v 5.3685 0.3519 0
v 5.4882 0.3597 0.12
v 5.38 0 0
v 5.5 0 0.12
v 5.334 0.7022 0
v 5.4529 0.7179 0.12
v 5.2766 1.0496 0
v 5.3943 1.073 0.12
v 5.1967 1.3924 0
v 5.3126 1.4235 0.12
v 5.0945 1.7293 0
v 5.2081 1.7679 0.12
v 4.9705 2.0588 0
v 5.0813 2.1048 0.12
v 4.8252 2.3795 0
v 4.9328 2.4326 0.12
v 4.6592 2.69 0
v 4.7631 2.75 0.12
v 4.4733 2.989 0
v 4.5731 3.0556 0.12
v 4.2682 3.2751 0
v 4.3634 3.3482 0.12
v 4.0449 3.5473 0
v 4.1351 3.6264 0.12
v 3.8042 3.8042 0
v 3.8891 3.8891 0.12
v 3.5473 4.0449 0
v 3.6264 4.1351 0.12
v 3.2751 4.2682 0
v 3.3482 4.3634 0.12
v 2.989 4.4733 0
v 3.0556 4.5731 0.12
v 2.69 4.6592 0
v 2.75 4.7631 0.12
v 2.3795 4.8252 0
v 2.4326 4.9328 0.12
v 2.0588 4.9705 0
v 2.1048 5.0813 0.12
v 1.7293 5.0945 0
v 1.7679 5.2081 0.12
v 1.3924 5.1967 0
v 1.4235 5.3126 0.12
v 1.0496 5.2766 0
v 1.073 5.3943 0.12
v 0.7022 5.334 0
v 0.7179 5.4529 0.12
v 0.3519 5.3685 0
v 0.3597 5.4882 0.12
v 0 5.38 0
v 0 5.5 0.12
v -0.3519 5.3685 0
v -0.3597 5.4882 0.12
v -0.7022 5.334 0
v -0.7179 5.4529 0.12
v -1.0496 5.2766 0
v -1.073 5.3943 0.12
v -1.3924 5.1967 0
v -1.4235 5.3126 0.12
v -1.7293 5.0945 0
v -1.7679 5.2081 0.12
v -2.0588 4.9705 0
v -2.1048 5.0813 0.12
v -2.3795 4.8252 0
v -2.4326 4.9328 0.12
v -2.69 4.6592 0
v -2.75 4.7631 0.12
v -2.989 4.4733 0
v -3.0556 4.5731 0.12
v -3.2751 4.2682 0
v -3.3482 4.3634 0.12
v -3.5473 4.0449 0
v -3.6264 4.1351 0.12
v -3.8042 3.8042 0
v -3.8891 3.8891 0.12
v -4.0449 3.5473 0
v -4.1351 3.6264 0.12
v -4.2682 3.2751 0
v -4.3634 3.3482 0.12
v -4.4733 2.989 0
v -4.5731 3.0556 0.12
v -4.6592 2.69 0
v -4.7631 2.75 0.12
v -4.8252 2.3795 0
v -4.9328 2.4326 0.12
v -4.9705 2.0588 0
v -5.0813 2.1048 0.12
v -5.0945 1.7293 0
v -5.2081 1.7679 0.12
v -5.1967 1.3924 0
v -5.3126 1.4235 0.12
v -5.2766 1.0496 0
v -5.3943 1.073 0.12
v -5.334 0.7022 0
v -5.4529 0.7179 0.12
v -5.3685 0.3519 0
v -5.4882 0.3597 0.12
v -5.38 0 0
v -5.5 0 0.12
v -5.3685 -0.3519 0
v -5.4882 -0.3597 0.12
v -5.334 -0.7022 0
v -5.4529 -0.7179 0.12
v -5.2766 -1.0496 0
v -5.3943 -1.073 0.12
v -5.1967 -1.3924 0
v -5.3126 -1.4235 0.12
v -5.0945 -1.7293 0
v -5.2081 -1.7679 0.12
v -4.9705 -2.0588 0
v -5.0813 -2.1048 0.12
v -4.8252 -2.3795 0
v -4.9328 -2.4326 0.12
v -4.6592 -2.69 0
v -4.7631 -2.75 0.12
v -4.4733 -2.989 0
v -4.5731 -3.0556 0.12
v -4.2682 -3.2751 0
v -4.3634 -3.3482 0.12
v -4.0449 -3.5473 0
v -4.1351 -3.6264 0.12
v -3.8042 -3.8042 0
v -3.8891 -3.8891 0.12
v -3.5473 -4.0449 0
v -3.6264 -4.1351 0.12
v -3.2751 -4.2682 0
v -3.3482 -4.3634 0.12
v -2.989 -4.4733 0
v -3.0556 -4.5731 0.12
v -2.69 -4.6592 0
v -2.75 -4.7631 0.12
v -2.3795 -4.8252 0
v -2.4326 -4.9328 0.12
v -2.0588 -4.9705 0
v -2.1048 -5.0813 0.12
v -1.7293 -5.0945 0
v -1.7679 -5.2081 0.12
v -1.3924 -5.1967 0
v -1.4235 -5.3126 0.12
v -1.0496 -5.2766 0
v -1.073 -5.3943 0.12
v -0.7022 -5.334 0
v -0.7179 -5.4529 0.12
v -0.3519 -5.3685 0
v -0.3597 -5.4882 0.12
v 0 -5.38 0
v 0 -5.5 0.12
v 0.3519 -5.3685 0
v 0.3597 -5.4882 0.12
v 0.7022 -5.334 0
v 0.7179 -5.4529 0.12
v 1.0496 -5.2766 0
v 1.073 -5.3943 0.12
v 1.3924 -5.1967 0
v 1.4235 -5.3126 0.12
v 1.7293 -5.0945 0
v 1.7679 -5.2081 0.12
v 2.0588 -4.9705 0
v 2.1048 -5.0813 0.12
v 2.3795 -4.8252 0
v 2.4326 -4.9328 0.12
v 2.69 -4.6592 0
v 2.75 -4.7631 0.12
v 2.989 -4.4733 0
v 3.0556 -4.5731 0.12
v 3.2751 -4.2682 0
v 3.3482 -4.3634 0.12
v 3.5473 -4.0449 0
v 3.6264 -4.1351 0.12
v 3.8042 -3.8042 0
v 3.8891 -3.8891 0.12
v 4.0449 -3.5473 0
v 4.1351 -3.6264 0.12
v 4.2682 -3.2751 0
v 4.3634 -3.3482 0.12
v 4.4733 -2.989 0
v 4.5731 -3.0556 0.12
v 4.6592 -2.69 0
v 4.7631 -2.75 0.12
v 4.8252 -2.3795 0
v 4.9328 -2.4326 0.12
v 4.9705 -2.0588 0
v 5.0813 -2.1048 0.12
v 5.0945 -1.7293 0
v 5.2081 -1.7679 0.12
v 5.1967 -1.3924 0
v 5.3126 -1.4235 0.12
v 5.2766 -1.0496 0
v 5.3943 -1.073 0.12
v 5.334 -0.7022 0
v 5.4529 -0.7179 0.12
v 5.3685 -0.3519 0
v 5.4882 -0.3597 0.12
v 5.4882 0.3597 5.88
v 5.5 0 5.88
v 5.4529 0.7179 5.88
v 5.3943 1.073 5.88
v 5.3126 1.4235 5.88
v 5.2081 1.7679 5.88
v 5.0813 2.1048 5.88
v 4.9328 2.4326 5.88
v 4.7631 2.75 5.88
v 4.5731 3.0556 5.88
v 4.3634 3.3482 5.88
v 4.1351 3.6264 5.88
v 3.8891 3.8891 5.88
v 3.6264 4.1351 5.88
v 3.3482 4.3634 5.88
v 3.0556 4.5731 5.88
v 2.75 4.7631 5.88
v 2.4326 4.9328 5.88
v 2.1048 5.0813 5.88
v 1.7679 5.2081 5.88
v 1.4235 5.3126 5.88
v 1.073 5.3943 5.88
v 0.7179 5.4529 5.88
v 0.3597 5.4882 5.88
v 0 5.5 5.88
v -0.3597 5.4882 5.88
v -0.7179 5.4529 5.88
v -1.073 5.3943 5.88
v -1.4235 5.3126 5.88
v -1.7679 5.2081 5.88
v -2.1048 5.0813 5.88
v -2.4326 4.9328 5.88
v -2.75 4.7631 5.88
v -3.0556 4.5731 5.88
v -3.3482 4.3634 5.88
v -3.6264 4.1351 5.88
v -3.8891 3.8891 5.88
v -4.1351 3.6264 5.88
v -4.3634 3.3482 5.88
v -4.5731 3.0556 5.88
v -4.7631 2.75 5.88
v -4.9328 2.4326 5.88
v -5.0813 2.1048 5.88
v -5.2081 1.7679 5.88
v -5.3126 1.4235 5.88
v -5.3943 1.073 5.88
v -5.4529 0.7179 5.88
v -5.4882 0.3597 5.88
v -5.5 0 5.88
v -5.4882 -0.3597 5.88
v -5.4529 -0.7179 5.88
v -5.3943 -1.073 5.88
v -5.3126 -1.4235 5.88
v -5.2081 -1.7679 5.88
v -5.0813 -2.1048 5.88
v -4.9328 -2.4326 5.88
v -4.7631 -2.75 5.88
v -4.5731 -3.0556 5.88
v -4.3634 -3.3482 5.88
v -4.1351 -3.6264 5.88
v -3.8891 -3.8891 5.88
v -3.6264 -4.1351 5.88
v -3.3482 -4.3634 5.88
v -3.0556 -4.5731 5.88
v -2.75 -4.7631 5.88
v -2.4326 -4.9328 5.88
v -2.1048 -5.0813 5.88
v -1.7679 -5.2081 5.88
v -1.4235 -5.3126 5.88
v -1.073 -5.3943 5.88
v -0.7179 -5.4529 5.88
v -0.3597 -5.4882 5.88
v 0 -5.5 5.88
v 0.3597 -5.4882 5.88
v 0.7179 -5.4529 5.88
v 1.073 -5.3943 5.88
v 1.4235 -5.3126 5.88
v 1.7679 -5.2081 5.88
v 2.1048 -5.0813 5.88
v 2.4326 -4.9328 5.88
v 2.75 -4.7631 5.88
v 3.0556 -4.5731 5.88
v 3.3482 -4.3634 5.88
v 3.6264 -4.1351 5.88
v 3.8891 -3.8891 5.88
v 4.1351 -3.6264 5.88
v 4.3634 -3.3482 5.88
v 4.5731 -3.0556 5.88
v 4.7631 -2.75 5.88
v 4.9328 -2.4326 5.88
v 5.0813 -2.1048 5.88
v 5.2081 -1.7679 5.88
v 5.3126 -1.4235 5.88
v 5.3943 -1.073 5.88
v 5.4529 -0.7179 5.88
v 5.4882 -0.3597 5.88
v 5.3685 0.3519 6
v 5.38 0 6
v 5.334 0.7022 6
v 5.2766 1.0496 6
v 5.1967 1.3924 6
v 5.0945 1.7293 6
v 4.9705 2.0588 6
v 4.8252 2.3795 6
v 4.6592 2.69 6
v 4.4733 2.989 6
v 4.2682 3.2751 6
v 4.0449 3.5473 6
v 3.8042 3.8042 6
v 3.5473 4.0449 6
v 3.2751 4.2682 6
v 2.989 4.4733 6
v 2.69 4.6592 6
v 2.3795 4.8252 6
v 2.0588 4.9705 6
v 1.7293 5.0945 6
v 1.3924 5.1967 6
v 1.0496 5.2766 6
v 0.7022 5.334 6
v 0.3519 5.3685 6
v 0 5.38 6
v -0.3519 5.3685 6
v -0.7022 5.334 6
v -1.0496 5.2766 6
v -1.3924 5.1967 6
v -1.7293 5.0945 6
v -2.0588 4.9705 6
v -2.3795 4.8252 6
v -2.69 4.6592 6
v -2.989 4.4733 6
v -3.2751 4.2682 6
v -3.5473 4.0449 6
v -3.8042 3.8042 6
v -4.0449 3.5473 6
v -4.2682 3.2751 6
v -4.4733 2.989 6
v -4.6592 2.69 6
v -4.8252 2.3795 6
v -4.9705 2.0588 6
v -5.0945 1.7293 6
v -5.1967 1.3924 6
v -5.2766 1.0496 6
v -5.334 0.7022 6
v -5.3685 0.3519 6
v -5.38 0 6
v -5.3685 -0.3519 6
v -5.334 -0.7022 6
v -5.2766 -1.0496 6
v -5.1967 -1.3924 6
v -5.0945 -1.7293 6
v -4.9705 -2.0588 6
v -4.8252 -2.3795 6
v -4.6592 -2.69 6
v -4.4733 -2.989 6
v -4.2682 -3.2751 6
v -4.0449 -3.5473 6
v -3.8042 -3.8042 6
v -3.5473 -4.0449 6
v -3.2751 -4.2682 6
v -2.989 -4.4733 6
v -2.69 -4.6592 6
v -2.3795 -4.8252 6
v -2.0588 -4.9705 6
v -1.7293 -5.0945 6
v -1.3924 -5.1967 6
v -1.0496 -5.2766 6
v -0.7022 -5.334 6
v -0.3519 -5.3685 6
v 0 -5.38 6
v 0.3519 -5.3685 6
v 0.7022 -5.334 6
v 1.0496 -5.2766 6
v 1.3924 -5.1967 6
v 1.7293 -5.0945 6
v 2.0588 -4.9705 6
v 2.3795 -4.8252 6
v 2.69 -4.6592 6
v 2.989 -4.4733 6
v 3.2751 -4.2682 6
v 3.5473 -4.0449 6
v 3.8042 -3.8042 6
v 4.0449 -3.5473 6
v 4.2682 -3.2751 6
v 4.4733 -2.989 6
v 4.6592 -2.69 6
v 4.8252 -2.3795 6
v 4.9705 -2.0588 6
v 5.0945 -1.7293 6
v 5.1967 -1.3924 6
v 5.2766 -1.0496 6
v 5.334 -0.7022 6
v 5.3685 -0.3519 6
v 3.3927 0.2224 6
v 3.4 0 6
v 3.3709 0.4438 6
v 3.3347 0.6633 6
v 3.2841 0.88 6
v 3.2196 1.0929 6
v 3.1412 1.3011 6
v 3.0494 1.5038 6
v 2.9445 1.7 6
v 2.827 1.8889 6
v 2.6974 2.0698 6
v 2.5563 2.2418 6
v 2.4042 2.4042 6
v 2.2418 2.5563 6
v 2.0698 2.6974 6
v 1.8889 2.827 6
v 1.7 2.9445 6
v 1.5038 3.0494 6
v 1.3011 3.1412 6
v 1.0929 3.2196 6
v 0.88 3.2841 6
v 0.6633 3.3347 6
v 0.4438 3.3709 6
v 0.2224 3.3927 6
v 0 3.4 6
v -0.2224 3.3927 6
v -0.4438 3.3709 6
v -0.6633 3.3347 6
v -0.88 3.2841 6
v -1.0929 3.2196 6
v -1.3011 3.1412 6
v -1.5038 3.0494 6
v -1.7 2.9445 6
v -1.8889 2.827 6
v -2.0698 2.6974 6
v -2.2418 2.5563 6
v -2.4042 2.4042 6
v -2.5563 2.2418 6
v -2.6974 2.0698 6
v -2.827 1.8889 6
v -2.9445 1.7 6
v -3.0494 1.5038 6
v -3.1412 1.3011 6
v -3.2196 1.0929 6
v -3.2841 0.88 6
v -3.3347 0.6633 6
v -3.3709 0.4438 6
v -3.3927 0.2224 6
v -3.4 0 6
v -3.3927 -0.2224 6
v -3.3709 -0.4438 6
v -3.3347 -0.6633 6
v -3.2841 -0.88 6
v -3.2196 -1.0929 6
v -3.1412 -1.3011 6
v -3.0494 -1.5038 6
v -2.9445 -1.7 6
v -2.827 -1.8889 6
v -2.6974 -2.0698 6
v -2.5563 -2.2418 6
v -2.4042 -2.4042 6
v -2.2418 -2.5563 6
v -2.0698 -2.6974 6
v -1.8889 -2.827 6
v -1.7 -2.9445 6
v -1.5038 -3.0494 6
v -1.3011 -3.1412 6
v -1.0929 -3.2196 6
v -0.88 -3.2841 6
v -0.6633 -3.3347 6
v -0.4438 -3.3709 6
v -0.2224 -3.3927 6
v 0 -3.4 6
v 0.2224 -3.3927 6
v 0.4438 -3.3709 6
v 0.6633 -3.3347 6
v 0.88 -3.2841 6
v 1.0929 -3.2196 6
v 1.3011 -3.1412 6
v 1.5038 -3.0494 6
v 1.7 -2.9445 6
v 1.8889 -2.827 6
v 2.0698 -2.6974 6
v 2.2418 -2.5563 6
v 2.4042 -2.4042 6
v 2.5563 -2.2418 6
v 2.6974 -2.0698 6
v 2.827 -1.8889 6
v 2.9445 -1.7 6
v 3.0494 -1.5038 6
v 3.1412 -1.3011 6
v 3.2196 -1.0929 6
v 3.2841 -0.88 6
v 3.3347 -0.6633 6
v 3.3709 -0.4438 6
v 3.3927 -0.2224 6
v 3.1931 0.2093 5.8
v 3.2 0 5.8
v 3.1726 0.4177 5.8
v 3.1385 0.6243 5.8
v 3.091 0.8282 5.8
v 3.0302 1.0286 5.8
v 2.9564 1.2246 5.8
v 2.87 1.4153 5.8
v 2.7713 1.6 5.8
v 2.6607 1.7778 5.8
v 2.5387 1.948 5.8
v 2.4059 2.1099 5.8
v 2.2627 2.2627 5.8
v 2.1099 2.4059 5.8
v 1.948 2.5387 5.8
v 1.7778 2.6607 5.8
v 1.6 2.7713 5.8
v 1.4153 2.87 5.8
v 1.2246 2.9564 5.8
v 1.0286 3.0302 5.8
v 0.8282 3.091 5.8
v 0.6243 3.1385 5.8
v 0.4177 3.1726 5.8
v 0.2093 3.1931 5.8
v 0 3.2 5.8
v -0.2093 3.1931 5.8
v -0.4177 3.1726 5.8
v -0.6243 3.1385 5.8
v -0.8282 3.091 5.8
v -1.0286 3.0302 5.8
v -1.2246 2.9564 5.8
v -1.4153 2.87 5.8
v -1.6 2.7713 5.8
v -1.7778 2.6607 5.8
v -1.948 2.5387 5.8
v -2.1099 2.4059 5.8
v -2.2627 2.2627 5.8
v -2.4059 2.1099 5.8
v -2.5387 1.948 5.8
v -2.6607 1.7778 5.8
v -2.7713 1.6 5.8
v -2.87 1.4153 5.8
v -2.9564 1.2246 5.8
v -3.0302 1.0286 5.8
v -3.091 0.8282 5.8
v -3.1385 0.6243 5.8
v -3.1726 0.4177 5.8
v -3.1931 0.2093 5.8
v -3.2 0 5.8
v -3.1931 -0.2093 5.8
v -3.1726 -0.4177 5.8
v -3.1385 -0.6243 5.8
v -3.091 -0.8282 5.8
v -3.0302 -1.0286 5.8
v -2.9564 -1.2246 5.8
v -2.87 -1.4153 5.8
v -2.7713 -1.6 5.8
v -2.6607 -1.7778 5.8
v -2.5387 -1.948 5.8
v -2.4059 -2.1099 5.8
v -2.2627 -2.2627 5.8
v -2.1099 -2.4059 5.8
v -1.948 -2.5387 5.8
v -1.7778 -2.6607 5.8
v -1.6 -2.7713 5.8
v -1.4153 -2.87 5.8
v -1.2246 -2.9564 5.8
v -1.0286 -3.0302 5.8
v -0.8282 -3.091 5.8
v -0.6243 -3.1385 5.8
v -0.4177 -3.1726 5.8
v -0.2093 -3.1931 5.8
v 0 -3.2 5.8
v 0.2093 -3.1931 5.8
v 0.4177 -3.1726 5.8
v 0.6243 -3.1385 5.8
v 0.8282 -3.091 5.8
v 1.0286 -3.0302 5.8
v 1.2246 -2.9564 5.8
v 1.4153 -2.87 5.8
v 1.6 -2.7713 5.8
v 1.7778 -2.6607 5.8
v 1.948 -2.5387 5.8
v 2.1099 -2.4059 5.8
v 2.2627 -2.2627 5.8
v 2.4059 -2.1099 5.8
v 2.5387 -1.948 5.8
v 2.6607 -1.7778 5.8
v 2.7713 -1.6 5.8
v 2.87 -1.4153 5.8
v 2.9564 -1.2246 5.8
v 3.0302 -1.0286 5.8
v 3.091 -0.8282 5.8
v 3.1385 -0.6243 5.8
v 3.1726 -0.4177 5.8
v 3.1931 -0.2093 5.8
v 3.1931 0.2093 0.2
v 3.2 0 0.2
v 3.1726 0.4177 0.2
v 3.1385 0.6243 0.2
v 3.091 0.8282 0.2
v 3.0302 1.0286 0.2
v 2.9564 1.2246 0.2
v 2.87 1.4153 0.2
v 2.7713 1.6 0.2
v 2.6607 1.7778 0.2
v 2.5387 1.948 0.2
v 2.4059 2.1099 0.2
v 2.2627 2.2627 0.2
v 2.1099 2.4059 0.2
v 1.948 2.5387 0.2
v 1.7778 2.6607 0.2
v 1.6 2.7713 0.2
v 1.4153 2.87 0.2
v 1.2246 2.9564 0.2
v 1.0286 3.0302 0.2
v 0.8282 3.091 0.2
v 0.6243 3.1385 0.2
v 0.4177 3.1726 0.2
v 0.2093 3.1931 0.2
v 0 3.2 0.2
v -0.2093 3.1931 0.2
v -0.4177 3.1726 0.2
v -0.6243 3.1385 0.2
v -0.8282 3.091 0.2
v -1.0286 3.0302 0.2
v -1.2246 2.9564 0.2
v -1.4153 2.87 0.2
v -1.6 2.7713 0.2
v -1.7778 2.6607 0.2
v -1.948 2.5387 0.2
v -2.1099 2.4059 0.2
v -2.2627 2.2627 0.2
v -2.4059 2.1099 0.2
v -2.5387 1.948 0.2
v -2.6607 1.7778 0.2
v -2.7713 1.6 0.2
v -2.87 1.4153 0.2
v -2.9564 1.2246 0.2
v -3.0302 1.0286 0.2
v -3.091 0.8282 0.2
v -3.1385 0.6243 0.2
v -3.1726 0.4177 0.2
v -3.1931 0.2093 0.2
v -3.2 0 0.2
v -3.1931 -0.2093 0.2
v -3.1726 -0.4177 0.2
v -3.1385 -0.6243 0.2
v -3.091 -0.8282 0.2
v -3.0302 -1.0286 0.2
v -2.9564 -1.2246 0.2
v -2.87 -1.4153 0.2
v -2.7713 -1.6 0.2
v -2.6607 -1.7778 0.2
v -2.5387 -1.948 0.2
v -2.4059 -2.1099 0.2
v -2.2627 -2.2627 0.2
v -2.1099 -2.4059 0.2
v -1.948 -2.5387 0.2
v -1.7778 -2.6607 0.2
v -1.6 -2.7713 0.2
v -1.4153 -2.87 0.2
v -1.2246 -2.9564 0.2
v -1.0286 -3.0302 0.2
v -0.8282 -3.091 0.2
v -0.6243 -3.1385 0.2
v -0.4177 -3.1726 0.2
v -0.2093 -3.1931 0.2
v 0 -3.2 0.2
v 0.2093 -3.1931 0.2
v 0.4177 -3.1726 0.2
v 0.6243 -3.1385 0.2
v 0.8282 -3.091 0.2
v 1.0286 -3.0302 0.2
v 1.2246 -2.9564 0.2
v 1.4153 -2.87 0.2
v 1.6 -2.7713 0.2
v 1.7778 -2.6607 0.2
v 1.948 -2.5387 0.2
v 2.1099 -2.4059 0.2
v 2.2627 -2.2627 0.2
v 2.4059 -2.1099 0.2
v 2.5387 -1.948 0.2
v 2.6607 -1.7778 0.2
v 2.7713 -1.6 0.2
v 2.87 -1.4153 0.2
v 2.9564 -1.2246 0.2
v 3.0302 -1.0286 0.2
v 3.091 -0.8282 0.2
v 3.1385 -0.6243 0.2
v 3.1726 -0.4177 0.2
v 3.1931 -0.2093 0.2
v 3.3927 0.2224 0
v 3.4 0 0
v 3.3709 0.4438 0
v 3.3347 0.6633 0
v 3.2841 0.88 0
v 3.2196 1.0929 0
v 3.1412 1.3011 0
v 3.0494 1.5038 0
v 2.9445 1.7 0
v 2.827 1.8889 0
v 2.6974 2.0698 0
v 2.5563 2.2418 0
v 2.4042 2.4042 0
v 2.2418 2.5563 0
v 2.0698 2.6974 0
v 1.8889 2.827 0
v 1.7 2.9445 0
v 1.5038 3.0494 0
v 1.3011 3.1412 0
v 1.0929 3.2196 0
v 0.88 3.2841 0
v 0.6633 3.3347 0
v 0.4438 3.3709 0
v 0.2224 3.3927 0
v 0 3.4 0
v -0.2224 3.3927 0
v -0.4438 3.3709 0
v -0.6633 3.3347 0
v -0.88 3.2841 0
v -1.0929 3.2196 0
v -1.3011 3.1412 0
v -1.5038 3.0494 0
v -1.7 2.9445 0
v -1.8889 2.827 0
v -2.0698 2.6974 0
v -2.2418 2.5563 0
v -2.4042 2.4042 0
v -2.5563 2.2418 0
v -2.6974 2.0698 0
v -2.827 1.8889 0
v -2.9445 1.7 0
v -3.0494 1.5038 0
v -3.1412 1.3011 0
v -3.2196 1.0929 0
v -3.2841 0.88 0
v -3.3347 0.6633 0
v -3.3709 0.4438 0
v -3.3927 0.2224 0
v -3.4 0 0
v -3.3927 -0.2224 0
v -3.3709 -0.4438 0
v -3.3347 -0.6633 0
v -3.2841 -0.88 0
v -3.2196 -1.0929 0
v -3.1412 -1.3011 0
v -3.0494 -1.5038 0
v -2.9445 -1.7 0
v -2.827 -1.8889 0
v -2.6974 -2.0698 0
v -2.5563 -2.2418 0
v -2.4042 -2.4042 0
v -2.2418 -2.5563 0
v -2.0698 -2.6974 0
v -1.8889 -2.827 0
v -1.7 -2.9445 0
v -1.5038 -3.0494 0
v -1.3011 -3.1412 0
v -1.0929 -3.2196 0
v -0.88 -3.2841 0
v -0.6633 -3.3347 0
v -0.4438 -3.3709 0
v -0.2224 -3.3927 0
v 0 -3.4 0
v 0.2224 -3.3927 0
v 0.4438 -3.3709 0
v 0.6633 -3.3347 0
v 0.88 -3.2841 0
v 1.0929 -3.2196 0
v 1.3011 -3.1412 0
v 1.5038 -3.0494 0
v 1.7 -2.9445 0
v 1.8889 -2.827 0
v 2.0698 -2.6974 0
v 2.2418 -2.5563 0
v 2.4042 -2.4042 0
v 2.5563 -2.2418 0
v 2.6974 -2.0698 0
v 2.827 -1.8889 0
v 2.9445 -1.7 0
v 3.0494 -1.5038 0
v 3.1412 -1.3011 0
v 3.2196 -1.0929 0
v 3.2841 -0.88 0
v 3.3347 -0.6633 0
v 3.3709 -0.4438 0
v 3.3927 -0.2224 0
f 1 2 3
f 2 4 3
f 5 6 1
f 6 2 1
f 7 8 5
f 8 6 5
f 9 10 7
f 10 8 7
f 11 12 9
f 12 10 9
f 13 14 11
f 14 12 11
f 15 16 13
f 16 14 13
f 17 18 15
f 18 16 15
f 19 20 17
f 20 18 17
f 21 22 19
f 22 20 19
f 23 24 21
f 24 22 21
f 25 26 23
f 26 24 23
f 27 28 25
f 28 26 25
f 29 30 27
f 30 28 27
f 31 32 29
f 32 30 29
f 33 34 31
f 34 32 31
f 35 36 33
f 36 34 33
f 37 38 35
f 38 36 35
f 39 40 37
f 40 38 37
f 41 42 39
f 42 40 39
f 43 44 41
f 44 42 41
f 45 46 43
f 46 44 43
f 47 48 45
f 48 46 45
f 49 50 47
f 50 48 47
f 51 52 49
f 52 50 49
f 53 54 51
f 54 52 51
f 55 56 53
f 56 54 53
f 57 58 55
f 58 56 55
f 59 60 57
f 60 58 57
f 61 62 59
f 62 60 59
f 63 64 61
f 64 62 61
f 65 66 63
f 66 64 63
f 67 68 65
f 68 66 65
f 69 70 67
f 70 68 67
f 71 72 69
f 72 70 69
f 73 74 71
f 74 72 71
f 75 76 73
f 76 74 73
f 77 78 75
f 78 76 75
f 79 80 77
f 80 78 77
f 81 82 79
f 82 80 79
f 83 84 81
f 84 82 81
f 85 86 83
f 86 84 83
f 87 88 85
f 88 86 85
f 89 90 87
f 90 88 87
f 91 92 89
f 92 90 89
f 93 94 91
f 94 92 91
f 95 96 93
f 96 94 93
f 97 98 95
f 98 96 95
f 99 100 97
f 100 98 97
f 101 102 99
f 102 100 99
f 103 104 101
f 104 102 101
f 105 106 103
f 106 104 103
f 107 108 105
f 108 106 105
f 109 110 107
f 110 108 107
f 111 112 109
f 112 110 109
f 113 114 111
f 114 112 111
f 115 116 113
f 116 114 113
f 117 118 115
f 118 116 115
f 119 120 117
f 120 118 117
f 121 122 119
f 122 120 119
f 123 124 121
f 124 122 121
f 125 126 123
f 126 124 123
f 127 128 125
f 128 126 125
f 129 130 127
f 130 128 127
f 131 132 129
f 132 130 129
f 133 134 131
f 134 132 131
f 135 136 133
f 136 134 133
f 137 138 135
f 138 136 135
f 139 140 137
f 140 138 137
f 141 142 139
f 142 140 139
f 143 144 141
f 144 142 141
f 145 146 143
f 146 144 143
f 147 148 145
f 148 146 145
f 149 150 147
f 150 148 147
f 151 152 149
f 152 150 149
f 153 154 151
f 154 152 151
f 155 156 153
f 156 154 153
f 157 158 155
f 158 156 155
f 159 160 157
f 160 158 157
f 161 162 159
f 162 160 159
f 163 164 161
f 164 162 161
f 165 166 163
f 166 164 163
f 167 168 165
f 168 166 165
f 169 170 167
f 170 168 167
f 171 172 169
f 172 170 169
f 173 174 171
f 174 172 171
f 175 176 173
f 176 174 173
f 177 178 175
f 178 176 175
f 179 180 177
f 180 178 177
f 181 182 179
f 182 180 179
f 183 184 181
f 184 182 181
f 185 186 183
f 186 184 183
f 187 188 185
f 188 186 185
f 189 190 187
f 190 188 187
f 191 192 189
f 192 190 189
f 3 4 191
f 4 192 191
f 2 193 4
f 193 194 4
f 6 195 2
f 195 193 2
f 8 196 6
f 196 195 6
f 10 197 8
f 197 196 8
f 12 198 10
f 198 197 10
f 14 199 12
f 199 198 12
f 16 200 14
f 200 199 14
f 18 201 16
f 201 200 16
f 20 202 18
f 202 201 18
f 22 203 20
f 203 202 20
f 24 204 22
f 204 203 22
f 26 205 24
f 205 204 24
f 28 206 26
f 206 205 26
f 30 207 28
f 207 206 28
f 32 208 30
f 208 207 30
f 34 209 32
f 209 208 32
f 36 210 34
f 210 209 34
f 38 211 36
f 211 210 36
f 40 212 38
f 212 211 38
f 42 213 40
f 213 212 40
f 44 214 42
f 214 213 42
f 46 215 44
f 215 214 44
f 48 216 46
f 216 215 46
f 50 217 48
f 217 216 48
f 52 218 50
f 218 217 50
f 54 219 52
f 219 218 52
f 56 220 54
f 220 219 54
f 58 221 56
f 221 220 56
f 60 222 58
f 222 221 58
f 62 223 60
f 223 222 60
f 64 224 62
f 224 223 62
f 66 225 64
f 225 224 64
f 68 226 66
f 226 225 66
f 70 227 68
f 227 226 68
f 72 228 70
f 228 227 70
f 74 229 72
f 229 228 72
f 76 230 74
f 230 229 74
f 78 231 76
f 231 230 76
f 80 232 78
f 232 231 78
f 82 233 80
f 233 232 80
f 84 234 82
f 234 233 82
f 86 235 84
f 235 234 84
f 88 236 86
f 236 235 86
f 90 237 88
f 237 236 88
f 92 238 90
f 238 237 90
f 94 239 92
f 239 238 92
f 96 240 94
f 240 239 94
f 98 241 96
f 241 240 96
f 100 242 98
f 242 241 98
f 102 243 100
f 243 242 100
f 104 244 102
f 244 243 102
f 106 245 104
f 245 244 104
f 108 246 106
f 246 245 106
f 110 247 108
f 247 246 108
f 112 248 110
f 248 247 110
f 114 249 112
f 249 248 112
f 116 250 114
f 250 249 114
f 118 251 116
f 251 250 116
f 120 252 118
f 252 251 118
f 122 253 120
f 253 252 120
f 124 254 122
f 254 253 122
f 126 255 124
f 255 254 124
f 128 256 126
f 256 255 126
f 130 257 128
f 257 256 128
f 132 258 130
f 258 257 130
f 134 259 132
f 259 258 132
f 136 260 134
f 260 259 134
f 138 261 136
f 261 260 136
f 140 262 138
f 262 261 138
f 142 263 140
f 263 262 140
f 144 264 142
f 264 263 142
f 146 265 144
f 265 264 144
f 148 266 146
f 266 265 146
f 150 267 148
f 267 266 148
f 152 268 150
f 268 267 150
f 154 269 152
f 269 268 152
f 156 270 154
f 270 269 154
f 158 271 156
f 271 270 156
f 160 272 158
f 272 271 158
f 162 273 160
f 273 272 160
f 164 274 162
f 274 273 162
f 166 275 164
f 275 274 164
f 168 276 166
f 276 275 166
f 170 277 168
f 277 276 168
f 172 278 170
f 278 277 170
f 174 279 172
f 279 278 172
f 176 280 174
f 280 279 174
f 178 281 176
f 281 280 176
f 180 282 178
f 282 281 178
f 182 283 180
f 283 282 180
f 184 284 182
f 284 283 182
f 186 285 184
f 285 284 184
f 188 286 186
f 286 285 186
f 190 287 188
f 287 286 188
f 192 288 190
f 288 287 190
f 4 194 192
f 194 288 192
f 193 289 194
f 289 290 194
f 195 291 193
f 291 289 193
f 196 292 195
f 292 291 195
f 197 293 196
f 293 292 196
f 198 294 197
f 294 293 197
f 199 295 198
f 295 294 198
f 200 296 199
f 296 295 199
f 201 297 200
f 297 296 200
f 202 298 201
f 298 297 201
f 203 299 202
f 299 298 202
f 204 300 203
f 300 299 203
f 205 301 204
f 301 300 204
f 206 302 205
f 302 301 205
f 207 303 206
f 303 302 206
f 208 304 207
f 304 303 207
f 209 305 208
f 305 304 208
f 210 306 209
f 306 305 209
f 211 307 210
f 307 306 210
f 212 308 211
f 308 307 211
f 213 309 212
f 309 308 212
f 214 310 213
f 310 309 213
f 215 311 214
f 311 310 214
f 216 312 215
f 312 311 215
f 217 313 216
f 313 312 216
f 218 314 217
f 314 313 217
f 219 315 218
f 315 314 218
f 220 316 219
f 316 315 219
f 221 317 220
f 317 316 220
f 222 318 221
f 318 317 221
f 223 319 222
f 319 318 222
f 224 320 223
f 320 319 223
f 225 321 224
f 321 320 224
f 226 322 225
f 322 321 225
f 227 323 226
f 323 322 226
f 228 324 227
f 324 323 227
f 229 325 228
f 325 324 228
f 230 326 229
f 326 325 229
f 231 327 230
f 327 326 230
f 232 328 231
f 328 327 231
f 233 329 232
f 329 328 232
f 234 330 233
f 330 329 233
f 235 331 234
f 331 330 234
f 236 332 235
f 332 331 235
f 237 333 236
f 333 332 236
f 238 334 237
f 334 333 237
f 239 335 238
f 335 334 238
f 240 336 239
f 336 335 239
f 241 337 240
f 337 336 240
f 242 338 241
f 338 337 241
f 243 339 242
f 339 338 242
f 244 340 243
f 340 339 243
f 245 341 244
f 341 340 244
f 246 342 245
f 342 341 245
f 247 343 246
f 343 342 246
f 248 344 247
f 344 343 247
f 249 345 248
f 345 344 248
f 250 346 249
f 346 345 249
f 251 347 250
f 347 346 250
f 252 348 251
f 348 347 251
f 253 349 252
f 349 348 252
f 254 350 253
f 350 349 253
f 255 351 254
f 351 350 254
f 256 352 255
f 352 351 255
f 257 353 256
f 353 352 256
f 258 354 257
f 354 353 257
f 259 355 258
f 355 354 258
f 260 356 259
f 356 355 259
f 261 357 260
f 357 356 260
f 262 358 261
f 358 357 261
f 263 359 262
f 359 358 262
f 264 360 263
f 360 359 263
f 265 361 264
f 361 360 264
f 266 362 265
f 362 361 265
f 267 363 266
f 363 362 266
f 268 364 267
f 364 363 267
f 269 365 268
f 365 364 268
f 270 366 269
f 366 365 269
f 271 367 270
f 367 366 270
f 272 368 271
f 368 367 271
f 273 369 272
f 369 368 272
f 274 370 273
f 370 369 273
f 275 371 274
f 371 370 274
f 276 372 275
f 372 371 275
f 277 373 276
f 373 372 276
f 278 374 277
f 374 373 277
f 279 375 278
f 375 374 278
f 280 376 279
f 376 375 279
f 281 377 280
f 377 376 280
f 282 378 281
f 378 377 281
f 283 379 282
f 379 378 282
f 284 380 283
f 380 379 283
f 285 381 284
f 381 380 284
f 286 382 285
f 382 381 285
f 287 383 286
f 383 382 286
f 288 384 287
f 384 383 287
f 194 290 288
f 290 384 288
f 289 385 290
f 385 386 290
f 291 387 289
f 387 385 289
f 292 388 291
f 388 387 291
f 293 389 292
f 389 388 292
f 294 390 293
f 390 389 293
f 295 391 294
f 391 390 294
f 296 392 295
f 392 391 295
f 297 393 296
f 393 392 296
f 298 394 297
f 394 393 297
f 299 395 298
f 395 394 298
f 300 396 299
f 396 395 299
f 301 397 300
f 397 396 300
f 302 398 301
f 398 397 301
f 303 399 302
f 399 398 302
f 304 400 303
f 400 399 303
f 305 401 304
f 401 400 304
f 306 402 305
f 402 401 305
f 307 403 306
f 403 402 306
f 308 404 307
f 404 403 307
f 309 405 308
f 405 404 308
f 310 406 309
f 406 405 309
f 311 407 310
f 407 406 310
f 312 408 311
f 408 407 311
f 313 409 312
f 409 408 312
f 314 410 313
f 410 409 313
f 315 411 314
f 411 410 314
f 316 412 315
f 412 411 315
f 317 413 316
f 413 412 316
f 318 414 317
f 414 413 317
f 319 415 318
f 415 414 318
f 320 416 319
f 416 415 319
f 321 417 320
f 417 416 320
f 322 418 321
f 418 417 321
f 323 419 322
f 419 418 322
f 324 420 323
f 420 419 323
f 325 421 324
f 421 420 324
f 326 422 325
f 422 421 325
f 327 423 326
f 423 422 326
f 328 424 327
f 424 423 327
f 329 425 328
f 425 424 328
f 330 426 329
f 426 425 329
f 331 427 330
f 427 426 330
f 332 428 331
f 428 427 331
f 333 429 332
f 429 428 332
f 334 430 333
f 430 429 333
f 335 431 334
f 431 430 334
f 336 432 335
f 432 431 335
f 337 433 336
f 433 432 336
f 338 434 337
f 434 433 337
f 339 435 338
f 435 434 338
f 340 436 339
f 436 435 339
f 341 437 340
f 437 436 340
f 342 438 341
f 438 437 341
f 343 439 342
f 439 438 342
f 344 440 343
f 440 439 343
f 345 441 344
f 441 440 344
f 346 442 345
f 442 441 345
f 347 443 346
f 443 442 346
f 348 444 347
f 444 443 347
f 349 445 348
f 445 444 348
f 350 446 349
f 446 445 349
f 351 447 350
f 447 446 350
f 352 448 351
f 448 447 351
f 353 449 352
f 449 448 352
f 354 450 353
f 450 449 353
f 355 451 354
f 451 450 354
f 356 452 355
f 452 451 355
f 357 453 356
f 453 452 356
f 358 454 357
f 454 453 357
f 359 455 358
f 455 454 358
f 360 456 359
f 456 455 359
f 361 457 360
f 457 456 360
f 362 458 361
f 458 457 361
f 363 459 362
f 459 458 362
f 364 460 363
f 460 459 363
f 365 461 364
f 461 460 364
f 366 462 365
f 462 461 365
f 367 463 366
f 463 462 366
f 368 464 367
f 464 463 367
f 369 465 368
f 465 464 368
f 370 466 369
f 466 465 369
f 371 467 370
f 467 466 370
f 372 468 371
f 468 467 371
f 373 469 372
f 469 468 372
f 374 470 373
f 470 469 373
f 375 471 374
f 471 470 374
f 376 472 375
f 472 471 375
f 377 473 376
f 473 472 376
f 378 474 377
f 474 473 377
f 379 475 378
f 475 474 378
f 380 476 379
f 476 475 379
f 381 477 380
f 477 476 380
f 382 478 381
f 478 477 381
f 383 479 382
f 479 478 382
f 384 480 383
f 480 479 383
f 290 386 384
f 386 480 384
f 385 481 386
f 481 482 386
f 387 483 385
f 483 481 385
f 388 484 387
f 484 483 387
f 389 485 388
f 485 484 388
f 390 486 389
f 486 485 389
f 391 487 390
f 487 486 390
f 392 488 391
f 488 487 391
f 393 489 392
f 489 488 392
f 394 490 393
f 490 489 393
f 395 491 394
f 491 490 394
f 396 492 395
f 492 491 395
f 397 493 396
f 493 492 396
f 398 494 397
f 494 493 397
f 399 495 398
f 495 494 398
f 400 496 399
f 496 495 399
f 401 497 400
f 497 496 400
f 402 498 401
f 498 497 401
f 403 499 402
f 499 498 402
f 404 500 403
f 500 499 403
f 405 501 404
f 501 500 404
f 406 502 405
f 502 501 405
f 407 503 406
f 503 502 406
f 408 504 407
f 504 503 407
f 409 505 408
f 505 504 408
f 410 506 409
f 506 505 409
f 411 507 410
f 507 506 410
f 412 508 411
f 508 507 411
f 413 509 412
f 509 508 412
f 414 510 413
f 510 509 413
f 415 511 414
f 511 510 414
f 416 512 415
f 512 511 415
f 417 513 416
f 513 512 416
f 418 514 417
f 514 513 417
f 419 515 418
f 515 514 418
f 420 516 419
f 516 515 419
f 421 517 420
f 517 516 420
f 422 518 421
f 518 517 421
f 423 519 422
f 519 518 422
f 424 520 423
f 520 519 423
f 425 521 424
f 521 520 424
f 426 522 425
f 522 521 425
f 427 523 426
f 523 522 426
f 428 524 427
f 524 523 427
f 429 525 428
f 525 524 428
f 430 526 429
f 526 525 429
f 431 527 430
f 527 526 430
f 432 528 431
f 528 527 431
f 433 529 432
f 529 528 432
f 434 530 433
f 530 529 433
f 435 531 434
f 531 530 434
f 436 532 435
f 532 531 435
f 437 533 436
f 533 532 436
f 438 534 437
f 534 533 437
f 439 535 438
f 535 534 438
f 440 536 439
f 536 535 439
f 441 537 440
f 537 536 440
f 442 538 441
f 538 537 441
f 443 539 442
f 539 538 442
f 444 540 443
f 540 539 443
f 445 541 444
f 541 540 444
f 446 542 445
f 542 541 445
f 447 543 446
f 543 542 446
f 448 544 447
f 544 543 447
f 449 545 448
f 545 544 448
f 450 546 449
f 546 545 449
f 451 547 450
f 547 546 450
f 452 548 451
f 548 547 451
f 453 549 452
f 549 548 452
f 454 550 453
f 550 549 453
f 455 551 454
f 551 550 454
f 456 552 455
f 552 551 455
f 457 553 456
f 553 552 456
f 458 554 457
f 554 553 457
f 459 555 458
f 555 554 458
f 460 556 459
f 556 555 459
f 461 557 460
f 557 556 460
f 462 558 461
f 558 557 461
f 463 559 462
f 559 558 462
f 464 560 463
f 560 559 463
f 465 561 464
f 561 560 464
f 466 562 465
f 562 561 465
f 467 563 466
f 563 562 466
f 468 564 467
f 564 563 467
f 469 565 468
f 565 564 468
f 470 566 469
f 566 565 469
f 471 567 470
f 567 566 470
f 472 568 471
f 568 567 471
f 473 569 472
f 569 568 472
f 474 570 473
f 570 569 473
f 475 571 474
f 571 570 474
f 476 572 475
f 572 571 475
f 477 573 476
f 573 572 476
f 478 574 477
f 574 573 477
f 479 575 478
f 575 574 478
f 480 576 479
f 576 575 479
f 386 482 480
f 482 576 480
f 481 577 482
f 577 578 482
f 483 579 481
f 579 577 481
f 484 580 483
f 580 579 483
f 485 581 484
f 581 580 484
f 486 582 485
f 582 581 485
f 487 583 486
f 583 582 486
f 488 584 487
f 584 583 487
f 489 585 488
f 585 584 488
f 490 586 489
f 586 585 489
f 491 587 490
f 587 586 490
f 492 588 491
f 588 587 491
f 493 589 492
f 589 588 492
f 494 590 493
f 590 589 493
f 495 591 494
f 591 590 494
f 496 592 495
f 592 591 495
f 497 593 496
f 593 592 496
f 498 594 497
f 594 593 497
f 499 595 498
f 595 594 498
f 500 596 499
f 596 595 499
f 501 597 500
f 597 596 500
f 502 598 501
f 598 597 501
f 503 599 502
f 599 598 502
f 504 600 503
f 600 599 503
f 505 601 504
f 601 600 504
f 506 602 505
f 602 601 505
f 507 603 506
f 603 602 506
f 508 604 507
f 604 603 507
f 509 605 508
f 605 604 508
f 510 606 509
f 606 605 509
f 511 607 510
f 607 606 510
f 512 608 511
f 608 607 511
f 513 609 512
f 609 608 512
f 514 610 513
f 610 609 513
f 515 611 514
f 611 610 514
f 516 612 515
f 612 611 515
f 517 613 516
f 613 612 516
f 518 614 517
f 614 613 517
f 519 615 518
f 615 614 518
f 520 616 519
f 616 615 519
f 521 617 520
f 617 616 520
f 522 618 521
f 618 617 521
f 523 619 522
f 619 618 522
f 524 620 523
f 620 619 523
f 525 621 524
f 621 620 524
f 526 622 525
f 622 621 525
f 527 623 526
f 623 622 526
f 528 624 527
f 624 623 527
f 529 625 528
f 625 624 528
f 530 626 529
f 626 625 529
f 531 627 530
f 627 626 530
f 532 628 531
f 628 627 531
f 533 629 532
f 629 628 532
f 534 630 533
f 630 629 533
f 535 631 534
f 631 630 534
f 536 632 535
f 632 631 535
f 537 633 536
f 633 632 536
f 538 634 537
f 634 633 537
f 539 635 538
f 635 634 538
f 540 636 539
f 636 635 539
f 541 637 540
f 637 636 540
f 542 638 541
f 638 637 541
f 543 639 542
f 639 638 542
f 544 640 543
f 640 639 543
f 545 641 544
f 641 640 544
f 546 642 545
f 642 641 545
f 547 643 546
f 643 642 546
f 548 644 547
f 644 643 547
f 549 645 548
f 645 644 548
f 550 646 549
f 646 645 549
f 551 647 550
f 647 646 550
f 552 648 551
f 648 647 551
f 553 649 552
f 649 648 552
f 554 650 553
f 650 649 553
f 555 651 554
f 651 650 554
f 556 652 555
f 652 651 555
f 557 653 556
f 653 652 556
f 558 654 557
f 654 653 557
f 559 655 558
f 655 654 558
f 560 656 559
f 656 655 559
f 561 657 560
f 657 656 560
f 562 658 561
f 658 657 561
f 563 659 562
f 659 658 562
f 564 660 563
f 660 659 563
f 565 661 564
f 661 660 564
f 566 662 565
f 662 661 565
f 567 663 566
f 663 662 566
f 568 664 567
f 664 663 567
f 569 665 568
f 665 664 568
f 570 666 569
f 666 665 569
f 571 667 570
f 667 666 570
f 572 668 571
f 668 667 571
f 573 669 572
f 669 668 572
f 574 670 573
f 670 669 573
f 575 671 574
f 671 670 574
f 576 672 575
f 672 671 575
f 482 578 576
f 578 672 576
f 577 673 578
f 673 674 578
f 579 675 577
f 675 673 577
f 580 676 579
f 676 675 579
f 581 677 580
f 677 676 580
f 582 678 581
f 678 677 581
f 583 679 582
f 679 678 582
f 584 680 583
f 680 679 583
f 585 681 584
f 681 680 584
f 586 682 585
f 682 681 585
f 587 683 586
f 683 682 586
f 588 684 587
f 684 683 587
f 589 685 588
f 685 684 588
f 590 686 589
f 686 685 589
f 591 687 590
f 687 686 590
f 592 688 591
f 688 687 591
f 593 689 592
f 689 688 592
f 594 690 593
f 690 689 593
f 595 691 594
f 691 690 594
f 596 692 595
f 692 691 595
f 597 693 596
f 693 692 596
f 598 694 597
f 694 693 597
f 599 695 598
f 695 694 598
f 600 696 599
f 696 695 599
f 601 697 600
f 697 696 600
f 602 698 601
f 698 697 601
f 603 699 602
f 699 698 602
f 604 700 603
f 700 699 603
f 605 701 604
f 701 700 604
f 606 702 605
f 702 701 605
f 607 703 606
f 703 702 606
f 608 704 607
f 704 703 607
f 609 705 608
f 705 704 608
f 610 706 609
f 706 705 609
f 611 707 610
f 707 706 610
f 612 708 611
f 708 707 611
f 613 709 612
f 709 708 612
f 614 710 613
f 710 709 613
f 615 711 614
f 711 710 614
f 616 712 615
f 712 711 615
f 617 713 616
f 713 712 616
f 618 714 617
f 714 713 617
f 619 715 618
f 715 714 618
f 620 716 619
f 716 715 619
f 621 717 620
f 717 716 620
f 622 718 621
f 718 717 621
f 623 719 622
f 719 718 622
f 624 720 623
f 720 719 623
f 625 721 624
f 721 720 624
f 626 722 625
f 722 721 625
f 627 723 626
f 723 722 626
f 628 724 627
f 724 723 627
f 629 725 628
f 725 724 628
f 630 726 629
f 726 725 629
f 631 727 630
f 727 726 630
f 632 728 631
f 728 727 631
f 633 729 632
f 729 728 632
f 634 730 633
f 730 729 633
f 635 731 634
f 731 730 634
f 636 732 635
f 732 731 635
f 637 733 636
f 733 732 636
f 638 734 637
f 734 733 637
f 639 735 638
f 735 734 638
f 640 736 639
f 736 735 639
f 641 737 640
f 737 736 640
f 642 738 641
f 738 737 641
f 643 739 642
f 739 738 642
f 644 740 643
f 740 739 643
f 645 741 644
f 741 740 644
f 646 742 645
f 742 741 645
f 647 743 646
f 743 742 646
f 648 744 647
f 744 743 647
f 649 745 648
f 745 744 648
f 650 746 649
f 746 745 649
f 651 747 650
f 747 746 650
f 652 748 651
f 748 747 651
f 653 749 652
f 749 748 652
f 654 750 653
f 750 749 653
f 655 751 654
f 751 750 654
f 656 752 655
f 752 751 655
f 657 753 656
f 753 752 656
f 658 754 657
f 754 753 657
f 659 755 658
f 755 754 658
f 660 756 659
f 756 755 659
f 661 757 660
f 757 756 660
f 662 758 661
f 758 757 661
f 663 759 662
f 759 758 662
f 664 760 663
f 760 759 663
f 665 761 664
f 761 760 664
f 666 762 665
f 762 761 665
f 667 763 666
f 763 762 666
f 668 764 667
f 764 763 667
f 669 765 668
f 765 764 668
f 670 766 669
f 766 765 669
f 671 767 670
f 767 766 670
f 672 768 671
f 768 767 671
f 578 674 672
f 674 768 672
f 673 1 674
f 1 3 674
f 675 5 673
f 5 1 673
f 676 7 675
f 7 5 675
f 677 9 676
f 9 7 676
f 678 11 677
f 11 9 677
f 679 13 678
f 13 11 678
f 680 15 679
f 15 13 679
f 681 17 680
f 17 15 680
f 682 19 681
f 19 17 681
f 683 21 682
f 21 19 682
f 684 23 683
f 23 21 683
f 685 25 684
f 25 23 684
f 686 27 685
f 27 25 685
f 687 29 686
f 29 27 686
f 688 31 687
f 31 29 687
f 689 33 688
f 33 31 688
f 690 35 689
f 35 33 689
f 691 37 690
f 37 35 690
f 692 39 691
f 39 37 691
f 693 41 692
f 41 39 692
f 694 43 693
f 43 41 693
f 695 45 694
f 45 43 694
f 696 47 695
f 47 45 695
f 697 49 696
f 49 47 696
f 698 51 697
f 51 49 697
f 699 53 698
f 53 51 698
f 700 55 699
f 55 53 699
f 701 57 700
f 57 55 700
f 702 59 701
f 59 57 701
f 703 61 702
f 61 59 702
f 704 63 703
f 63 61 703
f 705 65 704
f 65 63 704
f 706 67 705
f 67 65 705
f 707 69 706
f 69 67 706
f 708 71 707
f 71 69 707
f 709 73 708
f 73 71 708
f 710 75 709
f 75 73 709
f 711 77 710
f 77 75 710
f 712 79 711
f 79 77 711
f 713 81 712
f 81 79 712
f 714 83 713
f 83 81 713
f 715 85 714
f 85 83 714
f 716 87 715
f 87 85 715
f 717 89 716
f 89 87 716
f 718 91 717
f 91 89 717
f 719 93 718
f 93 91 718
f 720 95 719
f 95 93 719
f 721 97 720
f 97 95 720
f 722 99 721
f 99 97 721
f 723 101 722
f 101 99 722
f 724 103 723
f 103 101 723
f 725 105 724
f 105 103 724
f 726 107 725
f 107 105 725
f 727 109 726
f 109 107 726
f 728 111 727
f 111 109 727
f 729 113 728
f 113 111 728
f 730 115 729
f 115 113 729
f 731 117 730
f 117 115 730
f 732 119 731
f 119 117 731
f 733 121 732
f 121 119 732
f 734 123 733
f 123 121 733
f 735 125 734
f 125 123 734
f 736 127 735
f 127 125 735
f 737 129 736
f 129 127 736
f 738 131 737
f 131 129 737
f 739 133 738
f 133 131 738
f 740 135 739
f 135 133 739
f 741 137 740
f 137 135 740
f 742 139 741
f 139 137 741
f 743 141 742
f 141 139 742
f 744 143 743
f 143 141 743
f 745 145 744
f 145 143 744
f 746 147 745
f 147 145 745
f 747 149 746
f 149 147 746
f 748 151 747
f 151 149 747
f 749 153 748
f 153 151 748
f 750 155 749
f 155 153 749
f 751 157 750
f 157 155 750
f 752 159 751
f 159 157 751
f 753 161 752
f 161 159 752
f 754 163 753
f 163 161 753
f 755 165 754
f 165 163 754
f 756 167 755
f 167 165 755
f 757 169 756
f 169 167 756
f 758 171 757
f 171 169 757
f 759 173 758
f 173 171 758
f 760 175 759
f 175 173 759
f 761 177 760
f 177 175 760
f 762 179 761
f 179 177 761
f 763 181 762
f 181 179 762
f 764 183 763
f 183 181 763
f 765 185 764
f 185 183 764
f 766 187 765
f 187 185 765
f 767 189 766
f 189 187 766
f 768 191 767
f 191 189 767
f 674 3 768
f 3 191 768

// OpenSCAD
// OOMP generic catalogue model; units: mm.
// Stud length is additional to body depth. Tapping depths are model assumptions.
variant = "full"; // [full, display]
family = "spacer";
connection_type = "plain";
depth_mm = 6;
stud_length_mm = 0;
tapped_depth_mm = 0;
bore_mm = 6.4;
outer_diameter_mm = 11;
across_flats_mm = 6;
thread_nominal_diameter_mm = 3;
thread_pitch_mm = 0.5;
edge_chamfer_mm = 0.12;
mouth_chamfer_mm = 0.2;
angular_segments = 96;
samples_per_pitch = 16;

// Boundary travels up the outside, then down any tapped/plain bore.
// Equal-height rings at shoulders form the annular shoulder faces.
n = angular_segments;
threaded = family == "standoff";
has_stud = connection_type == "stud_to_tapped" || connection_type == "stud_to_stud";
two_studs = connection_type == "stud_to_stud";
through = !threaded || connection_type == "tapped_to_tapped";
pitch = thread_pitch_mm;
diameter = threaded ? thread_nominal_diameter_mm : bore_mm;
minor = diameter - 5*sqrt(3)*pitch/8;
transition = mouth_chamfer_mm + (threaded ? 5*sqrt(3)*pitch/16 : 0);
tip_chamfer = mouth_chamfer_mm + 17*sqrt(3)*pitch/48;
function sorted(v) = len(v)<=1 ? v : let(p=v[0])
    concat(sorted([for(x=v) if(x<p-1e-8) x]), [p], sorted([for(x=v) if(x>p+1e-8) x]));
function reverse(v) = [for(i=[len(v)-1:-1:0]) v[i]];
function theta(i) = i*360/n;
function fract(x) = x-floor(x);
function phase_distance(i,z) = abs(fract(z/pitch-theta(i)/360+0.5)-0.5);
function thread_r(i,z) = minor/2 + min(5*sqrt(3)*pitch/16,
    max(0,(phase_distance(i,z)-0.125)*pitch*sqrt(3)));
function stud_r(i,z,tip) = min(diameter/2 - (variant=="full" ?
    min(17*sqrt(3)*pitch/48,max(0,(phase_distance(i,z)-0.0625)*pitch*sqrt(3))) : 0),
    diameter/2-tip_chamfer+abs(z-tip));
function body_r(i,z) = (threaded ? across_flats_mm/2/cos(theta(i)%60-30) : outer_diameter_mm/2)
    - max(0,edge_chamfer_mm-min(z,depth_mm-z));
function bore_r(i,z) = max(threaded ? (variant=="full" ? thread_r(i,z) : minor/2) : diameter/2,
    diameter/2+mouth_chamfer_mm-(through ? min(z,depth_mm-z) : depth_mm-z));
function stud_z(a,b,tip) = let(count=variant=="full" ? ceil(stud_length_mm/pitch*samples_per_pitch) : 1)
    sorted(concat([for(i=[0:count]) a+(b-a)*i/count], [tip==a ? tip+tip_chamfer : tip-tip_chamfer]));
body_z = sorted([0,edge_chamfer_mm,depth_mm-edge_chamfer_mm,depth_mm]);
low = through ? 0 : depth_mm-tapped_depth_mm;
count = threaded && variant=="full" ? ceil((depth_mm-low)/pitch*samples_per_pitch) : 1;
bore_z = two_studs ? [] : reverse(sorted(concat(
    [for(i=[0:count]) low+(depth_mm-low)*i/count],
    [depth_mm-mouth_chamfer_mm,depth_mm-transition],
    through ? [mouth_chamfer_mm,transition] : [])));
// Ring descriptors: [height, kind, tip]. Kind: 0 body, 1 stud, 2 bore.
rings = concat(
    has_stud ? [for(z=stud_z(-stud_length_mm,0,-stud_length_mm)) [z,1,-stud_length_mm]] : [],
    [for(z=body_z) [z,0,0]],
    two_studs ? [for(z=stud_z(depth_mm,depth_mm+stud_length_mm,depth_mm+stud_length_mm)) [z,1,depth_mm+stud_length_mm]] : [],
    [for(z=bore_z) [z,2,0]]);
function radius(i,ring) = ring[1]==0 ? body_r(i,ring[0]) :
    ring[1]==1 ? stud_r(i,ring[0],ring[2]) : bore_r(i,ring[0]);
points = concat([for(ring=rings) for(i=[0:n-1])
    [radius(i,ring)*cos(theta(i)),radius(i,ring)*sin(theta(i)),ring[0]]],
    through ? [] : [[0,0,rings[0][0]],[0,0,rings[len(rings)-1][0]]]);
center = len(rings)*n;
last = (len(rings)-1)*n;
// OpenSCAD winding is opposite to STL winding.
faces = concat(
    [for(j=[0:len(rings)-(through ? 1 : 2)]) for(i=[0:n-1]) each
        let(a=j*n+i,b=j*n+(i+1)%n,c=((j+1)%len(rings))*n+(i+1)%n,d=((j+1)%len(rings))*n+i)
        [[a,c,b],[a,d,c]]],
    through ? [] : [for(i=[0:n-1]) each let(k=(i+1)%n)
        [[center,i,k],[center+1,last+k,last+i]]]);
assert(family=="spacer" || family=="standoff");
assert(!threaded || connection_type=="tapped_to_tapped" || has_stud);
assert(depth_mm>0 && diameter>0 && pitch>0);
assert(variant=="full" || variant=="display");
assert(n>=24 && n%12==0 && samples_per_pitch>=8);
assert(mouth_chamfer_mm>0 && mouth_chamfer_mm<depth_mm/2);
assert(edge_chamfer_mm>=0 && edge_chamfer_mm<depth_mm/2);
assert(diameter+4*max(mouth_chamfer_mm,edge_chamfer_mm) < (threaded ? across_flats_mm : outer_diameter_mm));
assert(!has_stud || stud_length_mm>2*mouth_chamfer_mm);
assert(!through || !threaded || 2*transition<depth_mm);
assert(connection_type!="stud_to_tapped" || (tapped_depth_mm>transition && tapped_depth_mm<depth_mm));
color([0.86,0.85,0.81]) polyhedron(points=points,faces=faces,convexity=20);
